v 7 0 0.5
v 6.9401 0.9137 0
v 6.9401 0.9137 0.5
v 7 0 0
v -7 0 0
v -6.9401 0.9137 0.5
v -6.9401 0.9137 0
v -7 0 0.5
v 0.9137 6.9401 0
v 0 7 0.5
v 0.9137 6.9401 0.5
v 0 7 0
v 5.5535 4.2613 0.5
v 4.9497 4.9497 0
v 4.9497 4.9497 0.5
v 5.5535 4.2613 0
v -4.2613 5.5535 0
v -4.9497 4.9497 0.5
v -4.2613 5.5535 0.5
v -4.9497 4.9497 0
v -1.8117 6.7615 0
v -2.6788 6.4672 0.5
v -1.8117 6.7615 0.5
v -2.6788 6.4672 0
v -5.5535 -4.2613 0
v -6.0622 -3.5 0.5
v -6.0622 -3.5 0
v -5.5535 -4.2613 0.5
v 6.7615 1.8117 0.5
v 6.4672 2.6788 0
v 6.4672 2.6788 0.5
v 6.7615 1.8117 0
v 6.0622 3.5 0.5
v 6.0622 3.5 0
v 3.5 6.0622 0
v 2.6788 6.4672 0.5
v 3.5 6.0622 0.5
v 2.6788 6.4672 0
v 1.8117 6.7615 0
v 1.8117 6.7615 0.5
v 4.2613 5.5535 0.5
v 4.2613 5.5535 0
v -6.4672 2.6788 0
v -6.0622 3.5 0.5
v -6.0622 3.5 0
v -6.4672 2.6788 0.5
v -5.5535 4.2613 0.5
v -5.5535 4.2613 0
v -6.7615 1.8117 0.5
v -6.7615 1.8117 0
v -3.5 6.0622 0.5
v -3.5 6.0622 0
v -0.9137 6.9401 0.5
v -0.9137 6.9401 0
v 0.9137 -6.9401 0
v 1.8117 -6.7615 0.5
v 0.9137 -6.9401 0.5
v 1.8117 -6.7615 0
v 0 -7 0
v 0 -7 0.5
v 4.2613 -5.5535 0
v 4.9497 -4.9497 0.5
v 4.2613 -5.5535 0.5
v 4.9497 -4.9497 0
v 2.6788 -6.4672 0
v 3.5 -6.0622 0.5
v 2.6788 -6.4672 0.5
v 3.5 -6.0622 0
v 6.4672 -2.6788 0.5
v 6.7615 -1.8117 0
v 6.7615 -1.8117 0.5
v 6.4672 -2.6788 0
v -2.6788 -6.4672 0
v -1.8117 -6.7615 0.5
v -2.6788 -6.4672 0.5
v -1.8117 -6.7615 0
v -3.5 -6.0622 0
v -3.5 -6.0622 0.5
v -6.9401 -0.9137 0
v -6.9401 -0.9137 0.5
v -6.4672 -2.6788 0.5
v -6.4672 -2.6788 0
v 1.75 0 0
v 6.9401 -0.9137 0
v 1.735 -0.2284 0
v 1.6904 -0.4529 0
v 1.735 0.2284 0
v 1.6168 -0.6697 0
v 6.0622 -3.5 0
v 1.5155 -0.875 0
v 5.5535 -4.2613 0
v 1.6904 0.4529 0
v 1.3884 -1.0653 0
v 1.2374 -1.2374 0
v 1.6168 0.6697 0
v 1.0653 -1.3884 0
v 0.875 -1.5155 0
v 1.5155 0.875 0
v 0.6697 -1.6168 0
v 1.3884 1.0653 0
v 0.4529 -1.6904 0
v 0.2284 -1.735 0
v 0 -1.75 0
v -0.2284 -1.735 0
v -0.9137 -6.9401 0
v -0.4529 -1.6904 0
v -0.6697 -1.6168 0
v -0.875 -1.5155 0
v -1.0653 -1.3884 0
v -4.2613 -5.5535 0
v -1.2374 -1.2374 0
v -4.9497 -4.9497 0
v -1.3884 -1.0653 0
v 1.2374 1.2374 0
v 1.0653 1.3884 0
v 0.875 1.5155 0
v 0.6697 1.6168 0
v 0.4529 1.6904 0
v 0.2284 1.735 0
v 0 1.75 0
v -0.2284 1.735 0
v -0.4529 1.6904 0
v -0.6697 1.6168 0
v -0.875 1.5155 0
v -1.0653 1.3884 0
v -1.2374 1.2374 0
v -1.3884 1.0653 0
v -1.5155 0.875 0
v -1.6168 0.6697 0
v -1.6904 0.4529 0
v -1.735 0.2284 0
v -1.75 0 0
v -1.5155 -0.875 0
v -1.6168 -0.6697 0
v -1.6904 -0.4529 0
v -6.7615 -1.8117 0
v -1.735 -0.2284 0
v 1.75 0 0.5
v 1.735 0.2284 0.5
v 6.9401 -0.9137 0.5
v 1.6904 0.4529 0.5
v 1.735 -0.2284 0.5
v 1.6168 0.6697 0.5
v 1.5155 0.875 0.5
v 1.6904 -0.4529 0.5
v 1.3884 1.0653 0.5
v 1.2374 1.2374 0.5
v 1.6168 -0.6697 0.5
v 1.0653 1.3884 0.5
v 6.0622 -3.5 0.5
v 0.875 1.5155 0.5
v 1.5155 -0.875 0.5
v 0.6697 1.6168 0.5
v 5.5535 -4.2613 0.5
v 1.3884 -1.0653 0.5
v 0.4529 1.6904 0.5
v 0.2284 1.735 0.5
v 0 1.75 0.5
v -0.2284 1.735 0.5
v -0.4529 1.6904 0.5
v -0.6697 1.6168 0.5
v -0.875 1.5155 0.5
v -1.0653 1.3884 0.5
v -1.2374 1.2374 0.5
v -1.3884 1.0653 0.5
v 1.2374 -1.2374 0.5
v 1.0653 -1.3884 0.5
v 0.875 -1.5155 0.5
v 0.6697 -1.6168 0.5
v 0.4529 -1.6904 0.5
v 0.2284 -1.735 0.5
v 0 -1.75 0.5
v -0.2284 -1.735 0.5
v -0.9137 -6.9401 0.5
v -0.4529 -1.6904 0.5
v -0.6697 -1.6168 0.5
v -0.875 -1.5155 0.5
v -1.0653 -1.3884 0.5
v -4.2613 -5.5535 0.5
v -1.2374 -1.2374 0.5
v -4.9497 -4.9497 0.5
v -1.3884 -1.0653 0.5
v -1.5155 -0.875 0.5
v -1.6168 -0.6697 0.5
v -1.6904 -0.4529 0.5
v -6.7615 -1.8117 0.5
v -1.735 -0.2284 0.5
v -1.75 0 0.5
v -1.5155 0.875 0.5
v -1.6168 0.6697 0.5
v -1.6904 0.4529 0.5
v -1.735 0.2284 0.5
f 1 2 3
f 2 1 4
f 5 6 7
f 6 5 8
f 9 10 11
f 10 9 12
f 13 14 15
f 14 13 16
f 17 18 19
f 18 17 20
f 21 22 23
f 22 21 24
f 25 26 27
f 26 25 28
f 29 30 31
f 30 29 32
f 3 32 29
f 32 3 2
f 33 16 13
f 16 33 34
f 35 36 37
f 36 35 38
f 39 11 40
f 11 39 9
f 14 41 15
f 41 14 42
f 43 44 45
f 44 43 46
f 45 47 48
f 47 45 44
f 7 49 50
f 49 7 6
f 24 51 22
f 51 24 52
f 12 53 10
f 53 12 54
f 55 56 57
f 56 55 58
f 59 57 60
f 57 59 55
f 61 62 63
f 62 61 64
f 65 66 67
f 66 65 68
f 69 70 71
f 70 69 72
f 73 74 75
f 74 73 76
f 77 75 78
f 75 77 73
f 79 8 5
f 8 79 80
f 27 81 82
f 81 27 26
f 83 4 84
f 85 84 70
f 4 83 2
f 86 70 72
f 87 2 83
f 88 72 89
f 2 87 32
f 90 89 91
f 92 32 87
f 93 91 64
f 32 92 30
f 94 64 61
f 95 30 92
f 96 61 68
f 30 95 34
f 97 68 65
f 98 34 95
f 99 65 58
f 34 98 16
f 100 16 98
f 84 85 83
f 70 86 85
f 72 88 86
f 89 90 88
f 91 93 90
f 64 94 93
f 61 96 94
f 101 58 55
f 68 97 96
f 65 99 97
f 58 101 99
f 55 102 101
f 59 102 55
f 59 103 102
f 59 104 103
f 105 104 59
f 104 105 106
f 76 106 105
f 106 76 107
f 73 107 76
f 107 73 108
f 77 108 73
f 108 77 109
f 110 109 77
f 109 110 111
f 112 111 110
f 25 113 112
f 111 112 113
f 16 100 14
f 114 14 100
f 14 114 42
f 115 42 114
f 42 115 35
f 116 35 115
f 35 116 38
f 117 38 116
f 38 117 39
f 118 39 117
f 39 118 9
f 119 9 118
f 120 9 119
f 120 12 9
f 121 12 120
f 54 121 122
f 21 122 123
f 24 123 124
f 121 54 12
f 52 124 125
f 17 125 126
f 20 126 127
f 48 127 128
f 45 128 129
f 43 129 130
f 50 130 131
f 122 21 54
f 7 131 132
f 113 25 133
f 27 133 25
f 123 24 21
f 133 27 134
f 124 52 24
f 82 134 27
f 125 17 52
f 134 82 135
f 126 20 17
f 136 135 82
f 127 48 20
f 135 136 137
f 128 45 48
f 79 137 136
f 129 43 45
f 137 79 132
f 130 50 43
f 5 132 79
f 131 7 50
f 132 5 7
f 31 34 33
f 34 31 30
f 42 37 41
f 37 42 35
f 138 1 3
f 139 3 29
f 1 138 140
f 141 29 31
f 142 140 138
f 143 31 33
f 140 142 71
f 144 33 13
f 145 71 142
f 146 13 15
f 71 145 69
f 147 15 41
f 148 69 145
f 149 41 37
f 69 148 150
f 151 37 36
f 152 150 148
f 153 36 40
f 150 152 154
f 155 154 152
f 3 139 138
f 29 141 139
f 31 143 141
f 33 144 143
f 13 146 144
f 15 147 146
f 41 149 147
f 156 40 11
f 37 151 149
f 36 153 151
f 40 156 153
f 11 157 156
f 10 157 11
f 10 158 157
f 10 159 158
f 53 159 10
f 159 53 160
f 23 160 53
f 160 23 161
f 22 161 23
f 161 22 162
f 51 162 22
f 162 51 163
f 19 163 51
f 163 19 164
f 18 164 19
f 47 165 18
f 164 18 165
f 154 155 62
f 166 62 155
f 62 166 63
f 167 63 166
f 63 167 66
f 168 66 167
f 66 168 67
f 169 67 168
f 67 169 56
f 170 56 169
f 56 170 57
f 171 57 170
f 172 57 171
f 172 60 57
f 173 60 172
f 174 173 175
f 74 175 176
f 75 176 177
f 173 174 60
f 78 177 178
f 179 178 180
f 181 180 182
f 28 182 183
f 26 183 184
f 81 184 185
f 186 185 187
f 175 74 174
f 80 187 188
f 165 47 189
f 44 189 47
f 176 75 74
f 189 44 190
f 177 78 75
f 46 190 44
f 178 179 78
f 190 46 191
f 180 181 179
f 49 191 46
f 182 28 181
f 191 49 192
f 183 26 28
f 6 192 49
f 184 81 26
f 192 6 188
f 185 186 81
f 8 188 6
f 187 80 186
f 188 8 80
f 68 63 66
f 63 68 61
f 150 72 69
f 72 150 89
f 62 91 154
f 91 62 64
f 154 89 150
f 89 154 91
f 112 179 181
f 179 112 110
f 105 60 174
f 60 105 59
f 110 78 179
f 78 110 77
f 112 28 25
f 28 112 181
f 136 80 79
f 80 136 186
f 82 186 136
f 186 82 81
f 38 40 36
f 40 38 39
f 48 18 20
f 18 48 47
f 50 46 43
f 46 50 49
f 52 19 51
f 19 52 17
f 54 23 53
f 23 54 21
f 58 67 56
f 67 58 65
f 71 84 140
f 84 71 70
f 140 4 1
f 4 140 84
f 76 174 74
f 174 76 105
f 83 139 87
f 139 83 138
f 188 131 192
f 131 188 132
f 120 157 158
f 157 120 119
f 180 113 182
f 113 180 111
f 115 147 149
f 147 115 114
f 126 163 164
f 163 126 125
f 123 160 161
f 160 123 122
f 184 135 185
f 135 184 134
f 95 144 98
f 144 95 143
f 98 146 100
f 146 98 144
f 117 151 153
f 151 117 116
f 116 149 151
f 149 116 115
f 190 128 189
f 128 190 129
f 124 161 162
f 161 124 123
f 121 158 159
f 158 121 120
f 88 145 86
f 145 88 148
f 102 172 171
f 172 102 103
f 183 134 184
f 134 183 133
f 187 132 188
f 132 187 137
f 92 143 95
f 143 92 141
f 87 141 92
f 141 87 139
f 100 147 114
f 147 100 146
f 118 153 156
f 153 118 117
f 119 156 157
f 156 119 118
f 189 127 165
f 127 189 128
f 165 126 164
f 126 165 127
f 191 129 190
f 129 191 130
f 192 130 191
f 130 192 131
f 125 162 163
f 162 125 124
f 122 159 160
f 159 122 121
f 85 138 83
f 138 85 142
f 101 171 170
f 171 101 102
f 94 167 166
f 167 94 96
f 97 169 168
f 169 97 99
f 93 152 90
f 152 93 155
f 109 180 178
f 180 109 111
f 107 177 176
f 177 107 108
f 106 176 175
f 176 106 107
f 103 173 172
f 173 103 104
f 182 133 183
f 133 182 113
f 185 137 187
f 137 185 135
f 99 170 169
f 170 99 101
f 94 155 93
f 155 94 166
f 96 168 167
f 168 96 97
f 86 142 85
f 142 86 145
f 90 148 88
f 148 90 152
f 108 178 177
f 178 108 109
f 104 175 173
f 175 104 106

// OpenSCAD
// Gen-CU — assembly gap shim, h = run_clear (rotor face -> flange); copper is inside the flanges
include <parameters.scad>;
$fn = 48;
difference() {
    cylinder(d=spacer_pad_od, h=gap_spacer_h);
    translate([0, 0, -0.1]) cylinder(d=spacer_pad_id, h=gap_spacer_h + 0.2);
}
